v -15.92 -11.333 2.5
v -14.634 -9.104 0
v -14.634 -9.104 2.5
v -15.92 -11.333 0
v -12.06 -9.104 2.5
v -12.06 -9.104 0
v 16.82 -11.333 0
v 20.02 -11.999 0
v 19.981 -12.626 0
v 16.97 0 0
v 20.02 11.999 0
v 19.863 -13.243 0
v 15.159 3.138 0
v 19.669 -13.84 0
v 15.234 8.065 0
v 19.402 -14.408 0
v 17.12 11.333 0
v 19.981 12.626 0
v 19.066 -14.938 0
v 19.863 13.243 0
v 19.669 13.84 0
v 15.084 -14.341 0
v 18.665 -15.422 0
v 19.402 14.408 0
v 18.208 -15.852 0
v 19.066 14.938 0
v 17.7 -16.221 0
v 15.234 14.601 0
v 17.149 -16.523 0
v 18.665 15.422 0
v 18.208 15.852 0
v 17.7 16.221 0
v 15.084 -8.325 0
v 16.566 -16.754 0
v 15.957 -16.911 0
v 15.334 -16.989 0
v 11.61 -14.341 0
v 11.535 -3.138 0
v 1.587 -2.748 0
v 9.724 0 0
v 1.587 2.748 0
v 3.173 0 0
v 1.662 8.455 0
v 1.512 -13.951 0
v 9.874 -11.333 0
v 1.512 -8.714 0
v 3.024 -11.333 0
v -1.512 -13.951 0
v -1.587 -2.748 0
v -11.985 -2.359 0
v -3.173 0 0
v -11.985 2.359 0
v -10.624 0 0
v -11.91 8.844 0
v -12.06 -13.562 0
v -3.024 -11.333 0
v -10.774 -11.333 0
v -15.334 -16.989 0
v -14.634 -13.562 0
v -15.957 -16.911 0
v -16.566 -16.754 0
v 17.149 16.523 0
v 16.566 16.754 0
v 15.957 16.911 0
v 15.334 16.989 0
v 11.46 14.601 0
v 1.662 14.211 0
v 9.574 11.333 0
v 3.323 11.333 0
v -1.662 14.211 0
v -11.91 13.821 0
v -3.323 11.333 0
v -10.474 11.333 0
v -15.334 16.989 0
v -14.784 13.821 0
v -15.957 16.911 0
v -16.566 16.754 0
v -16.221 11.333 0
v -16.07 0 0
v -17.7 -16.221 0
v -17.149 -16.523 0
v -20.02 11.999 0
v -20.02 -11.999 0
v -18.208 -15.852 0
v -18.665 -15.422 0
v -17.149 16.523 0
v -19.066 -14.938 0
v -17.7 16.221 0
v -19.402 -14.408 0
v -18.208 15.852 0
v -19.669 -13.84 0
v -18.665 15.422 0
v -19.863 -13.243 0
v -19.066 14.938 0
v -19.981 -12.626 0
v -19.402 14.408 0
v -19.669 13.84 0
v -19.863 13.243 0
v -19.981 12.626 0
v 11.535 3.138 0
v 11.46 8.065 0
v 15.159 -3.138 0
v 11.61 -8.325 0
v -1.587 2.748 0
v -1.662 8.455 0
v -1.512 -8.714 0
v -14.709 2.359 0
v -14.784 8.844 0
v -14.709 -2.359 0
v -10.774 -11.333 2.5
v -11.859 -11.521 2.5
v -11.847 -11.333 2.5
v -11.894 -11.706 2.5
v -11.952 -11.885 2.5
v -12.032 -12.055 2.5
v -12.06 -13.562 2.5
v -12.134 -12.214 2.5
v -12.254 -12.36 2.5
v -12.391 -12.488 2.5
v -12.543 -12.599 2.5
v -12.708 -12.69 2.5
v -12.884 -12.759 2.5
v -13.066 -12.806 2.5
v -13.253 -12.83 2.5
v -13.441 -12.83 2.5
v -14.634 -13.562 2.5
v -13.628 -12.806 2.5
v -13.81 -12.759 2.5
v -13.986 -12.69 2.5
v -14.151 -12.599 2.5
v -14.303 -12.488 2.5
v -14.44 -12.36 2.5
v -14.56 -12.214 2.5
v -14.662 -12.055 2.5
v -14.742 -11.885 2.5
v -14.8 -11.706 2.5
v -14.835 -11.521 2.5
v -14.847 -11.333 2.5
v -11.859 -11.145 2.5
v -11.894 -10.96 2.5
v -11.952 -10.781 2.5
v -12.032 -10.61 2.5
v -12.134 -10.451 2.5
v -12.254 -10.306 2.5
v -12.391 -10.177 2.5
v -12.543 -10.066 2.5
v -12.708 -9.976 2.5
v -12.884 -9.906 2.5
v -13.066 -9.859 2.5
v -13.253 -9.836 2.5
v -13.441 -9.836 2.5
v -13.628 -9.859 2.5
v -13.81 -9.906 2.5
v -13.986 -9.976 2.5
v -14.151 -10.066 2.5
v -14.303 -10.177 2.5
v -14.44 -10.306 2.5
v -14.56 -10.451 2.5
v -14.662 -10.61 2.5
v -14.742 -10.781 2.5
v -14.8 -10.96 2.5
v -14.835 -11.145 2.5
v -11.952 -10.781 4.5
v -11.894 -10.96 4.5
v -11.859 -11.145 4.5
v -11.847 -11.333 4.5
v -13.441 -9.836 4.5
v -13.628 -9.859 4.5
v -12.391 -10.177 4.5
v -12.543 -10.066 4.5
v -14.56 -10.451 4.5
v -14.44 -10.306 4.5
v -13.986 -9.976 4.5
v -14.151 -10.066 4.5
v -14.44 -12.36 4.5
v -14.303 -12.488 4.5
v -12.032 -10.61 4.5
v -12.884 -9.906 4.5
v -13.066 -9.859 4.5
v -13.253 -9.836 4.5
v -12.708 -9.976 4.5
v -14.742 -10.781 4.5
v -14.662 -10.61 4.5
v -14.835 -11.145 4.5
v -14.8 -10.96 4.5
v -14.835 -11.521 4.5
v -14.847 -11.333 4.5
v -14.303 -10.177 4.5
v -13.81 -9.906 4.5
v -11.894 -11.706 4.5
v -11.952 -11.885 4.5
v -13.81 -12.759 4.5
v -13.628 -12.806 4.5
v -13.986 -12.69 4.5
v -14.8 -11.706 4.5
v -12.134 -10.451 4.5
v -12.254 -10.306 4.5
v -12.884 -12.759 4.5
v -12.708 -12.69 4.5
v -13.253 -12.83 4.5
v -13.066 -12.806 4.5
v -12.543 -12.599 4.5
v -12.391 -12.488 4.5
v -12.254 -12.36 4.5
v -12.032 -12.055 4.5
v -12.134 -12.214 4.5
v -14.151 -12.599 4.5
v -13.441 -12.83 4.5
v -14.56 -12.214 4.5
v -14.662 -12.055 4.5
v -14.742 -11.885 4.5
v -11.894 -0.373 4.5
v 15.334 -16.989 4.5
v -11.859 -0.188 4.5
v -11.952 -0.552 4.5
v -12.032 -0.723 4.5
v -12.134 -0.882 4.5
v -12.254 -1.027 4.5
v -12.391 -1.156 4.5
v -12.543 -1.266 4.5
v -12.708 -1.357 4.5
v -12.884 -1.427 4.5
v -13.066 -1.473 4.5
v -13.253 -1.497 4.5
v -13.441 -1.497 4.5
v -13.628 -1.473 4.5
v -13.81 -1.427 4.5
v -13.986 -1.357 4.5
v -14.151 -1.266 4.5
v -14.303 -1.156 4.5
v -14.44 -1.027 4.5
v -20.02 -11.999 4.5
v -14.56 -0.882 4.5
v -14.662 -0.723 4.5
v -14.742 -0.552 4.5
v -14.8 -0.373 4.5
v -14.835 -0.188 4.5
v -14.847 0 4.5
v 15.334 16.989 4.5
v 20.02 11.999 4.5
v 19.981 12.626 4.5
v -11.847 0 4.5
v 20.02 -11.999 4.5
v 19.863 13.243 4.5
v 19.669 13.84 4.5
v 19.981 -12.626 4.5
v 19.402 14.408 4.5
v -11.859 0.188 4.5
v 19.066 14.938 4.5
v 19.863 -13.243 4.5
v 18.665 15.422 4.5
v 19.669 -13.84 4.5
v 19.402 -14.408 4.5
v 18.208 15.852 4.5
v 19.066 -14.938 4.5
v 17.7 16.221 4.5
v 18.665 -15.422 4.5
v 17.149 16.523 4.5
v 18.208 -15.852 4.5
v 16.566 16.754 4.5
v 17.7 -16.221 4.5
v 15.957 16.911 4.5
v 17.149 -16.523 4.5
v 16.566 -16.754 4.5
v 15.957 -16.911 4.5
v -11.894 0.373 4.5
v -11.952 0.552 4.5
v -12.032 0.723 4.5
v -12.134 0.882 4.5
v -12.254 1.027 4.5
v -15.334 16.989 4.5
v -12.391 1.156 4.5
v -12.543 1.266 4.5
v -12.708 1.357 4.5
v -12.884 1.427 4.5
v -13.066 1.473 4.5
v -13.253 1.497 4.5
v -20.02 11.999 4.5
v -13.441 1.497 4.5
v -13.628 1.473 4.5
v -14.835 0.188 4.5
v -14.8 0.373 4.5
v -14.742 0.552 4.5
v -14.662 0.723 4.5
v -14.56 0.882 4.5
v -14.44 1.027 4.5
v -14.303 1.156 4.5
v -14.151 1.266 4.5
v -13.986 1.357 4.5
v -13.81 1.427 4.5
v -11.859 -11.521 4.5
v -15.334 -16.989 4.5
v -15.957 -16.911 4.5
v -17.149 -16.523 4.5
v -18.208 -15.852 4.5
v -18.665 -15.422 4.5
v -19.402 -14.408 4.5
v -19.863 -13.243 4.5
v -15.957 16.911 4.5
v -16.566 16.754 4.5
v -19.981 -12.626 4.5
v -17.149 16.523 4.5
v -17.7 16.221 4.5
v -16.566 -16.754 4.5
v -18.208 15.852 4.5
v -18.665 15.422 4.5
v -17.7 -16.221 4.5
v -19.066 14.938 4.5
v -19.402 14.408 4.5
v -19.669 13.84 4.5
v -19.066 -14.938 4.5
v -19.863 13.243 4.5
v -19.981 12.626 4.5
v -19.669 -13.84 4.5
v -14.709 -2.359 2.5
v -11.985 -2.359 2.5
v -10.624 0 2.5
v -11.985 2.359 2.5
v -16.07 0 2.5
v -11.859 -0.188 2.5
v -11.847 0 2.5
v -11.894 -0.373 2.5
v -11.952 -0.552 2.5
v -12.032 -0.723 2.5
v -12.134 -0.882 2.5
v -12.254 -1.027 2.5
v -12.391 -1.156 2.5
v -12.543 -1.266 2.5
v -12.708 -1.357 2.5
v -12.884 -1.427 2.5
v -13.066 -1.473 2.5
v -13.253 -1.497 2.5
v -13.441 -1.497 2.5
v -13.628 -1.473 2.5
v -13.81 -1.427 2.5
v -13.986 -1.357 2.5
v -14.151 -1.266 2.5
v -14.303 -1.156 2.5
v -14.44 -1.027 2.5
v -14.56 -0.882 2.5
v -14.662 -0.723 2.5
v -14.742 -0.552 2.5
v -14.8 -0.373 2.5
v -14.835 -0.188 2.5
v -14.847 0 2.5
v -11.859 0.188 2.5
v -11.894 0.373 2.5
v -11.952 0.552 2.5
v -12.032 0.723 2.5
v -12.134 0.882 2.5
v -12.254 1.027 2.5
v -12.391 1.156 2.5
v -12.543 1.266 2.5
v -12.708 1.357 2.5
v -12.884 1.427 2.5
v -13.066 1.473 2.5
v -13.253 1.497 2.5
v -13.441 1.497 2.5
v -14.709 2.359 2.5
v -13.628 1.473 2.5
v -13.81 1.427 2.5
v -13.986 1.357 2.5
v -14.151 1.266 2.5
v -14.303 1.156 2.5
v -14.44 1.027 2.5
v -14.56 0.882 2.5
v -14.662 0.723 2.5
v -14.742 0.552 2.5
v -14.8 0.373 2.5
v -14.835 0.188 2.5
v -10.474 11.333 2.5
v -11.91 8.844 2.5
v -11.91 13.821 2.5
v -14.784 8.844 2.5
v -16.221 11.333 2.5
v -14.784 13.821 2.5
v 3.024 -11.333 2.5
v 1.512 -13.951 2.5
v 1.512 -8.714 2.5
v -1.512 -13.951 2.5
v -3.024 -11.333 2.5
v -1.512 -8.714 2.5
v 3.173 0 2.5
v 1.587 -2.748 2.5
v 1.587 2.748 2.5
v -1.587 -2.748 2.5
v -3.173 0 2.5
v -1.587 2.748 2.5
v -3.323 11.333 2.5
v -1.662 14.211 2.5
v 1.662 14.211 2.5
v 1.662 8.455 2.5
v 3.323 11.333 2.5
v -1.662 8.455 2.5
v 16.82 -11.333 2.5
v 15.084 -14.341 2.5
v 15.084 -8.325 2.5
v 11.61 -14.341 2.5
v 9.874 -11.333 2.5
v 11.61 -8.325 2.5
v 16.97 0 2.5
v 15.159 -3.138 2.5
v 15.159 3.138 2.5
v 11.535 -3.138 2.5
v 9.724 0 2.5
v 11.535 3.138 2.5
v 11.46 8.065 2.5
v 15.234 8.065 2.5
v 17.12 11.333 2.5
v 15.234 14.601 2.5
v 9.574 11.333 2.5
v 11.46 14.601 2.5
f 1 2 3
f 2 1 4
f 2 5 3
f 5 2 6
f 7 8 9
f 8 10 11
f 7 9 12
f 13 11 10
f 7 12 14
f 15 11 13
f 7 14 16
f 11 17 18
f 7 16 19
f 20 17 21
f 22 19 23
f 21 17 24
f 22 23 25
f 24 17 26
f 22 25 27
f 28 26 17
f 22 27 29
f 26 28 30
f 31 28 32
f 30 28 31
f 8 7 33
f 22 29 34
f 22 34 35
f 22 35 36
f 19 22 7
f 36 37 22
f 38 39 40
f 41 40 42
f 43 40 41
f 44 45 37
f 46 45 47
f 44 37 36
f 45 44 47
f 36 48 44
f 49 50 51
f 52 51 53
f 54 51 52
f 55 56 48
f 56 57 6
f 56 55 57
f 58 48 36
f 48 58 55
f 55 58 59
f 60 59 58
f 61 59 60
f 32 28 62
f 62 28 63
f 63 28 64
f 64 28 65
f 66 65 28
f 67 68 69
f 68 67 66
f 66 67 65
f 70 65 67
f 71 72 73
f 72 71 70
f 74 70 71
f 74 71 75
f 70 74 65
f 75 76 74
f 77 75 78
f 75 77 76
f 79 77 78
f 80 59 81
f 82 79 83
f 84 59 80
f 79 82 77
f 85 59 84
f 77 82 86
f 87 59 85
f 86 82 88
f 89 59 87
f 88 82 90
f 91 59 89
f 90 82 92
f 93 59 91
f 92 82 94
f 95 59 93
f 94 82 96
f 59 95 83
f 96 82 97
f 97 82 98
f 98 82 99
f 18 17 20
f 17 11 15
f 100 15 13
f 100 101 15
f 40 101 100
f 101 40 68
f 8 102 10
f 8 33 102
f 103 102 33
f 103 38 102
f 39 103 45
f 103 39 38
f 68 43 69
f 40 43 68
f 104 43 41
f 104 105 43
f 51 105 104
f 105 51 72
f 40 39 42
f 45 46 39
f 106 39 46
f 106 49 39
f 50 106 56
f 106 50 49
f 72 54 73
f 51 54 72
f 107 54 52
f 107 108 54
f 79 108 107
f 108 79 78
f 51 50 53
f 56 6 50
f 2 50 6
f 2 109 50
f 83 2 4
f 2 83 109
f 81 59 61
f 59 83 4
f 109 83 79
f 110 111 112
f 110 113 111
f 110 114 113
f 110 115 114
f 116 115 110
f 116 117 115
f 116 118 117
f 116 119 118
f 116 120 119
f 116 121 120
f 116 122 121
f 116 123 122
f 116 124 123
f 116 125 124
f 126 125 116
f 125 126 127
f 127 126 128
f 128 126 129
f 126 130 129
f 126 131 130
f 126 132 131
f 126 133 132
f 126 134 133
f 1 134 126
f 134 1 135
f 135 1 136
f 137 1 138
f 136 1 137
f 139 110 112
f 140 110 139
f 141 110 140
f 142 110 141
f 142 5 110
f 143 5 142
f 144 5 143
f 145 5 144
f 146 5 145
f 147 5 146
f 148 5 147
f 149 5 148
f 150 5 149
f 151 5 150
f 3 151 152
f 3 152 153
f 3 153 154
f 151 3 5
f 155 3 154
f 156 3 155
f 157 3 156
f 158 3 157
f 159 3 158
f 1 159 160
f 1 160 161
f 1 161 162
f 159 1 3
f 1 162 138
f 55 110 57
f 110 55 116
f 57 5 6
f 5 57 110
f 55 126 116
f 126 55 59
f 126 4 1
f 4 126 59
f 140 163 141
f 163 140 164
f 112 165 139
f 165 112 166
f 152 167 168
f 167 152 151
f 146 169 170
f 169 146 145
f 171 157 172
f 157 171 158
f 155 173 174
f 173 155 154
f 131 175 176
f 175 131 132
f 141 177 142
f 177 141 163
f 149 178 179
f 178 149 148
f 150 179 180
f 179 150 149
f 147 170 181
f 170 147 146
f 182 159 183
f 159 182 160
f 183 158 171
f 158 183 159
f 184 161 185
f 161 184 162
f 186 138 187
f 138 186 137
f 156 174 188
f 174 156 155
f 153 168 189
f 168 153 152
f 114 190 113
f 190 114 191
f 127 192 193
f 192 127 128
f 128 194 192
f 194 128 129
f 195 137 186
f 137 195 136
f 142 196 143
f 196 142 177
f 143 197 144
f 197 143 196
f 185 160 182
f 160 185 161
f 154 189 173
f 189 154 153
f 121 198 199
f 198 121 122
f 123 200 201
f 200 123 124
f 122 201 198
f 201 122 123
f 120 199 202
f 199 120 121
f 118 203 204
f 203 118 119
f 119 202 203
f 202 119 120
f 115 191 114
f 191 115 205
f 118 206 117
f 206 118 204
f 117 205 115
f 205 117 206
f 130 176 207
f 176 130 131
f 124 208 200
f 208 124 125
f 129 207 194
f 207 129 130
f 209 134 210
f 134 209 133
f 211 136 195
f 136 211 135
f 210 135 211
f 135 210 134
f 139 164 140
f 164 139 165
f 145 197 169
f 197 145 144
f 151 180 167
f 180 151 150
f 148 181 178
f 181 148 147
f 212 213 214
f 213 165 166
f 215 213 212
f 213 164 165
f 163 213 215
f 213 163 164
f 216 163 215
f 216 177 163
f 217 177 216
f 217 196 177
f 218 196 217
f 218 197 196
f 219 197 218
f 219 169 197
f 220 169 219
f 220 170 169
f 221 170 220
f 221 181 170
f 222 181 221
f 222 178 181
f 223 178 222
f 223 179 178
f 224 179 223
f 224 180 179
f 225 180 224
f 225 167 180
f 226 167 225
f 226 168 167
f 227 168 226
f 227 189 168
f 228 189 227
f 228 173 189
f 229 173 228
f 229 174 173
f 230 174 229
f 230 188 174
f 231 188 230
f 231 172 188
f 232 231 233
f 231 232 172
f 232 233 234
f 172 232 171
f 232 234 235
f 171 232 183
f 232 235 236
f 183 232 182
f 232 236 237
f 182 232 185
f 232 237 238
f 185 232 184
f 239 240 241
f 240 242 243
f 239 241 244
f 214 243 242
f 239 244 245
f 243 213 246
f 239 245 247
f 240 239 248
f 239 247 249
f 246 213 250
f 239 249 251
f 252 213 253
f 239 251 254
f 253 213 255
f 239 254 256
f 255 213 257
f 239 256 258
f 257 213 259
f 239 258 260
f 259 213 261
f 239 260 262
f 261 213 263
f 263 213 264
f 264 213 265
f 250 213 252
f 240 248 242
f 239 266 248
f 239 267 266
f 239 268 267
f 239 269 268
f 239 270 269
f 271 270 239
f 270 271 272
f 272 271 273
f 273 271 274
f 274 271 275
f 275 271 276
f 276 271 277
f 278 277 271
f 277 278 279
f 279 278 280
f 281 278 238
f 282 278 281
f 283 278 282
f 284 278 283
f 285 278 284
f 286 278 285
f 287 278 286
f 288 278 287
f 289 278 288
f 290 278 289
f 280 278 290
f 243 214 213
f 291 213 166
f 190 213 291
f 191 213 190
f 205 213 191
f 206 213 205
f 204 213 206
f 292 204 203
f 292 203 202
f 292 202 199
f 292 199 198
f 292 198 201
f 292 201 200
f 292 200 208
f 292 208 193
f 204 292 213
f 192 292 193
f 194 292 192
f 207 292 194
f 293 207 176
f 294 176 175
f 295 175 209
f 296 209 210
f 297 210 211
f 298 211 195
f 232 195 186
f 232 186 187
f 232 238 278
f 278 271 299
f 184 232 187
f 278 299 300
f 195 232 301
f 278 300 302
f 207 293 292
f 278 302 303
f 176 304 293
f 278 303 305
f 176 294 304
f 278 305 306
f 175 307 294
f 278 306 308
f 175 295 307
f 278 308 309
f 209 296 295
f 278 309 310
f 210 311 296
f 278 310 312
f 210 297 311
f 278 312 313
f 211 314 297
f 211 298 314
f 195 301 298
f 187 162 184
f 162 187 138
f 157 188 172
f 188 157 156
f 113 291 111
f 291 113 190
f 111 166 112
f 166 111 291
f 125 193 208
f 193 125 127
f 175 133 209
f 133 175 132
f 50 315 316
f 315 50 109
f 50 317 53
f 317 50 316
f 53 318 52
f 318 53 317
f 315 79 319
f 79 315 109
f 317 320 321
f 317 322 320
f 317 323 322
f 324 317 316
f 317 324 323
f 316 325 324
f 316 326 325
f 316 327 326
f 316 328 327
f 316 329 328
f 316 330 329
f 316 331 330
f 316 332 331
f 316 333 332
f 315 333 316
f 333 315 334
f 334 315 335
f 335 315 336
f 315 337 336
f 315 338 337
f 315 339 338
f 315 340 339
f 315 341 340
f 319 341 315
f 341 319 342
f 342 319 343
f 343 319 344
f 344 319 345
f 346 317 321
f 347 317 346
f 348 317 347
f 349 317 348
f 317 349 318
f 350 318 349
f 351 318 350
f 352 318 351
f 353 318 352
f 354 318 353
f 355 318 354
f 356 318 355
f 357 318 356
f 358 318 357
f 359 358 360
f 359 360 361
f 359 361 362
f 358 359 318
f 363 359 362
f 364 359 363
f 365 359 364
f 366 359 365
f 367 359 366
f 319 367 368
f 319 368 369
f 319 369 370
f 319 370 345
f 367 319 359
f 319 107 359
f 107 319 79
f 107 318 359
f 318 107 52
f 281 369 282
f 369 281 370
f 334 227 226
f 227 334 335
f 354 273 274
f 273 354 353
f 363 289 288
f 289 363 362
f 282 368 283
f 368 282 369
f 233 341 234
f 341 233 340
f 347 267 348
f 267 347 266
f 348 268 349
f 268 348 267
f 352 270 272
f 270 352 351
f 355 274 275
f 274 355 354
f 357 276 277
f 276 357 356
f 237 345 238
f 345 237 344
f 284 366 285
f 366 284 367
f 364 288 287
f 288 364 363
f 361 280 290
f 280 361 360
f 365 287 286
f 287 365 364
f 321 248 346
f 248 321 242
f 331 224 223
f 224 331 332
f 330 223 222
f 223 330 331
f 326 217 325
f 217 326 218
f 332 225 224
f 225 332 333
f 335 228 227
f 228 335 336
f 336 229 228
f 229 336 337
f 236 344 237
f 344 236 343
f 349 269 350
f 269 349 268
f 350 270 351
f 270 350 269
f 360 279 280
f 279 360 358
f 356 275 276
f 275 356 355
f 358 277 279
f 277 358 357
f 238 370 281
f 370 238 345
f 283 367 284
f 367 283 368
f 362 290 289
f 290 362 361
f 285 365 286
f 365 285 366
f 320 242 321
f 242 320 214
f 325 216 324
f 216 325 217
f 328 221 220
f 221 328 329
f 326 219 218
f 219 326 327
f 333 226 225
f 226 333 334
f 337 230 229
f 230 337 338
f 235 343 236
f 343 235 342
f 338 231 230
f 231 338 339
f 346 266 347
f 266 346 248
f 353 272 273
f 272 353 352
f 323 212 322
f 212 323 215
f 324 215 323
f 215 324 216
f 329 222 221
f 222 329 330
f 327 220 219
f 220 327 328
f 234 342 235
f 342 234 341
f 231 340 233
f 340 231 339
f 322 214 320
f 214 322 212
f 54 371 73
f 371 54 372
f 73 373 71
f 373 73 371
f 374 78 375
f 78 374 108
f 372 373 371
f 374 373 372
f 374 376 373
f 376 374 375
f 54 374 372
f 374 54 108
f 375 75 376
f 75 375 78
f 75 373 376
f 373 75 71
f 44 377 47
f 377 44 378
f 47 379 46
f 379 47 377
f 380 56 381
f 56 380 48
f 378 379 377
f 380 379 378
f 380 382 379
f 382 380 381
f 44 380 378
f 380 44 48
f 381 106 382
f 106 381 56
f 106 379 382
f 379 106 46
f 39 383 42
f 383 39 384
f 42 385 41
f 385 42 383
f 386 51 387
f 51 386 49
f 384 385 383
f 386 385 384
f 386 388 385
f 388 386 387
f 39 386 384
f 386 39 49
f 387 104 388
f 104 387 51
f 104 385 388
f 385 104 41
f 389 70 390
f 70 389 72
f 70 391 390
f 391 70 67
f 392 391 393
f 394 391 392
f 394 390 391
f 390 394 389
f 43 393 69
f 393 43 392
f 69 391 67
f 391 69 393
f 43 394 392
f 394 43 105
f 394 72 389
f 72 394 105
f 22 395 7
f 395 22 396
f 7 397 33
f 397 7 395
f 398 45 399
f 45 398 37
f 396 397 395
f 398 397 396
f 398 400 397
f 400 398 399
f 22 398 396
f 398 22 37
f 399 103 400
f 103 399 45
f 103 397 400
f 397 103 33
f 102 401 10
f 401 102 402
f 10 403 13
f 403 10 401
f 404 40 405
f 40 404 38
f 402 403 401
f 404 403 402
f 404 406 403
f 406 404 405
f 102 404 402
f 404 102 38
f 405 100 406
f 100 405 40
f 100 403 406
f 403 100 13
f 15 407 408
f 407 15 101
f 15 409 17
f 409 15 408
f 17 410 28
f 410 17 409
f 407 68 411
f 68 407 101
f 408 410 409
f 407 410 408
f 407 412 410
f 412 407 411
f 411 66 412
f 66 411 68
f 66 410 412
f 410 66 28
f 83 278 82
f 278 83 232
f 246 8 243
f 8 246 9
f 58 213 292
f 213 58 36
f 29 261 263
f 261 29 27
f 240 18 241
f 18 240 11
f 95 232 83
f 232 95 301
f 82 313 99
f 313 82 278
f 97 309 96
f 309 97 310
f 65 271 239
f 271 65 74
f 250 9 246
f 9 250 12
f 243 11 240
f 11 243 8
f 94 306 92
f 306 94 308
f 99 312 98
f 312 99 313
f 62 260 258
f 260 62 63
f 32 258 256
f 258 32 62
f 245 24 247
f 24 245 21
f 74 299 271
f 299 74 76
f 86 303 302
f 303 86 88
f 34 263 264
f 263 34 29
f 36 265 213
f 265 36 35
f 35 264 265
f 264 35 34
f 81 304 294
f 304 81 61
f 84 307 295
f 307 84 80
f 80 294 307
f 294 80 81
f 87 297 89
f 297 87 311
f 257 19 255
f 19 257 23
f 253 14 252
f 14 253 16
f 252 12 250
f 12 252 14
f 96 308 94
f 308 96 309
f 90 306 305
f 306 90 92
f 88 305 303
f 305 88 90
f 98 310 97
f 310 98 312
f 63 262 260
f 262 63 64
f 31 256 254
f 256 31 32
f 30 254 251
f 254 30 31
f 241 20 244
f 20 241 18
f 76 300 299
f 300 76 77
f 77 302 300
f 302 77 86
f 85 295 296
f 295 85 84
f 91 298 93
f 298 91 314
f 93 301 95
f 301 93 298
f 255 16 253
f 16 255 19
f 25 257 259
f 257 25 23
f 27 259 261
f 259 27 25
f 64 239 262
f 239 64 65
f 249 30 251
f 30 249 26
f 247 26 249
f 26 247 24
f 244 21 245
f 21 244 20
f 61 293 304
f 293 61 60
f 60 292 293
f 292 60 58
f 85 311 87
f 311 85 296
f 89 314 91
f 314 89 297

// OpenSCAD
$fn = 50;


difference() {
	union() {
		translate(v = [0, 0, 0]) {
			rotate(a = [0, 0, 0]) {
				hull() {
					translate(v = [-15.0205000000, 11.9991334489, 0]) {
						rotate(a = [0, 0, 0]) {
							translate(v = [0, 0, 0]) {
								rotate(a = [0, 0, 0]) {
									cylinder(h = 4.5000000000, r = 5);
								}
							}
						}
					}
					translate(v = [15.0205000000, 11.9991334489, 0]) {
						rotate(a = [0, 0, 0]) {
							translate(v = [0, 0, 0]) {
								rotate(a = [0, 0, 0]) {
									cylinder(h = 4.5000000000, r = 5);
								}
							}
						}
					}
					translate(v = [-15.0205000000, -11.9991334489, 0]) {
						rotate(a = [0, 0, 0]) {
							translate(v = [0, 0, 0]) {
								rotate(a = [0, 0, 0]) {
									cylinder(h = 4.5000000000, r = 5);
								}
							}
						}
					}
					translate(v = [15.0205000000, -11.9991334489, 0]) {
						rotate(a = [0, 0, 0]) {
							translate(v = [0, 0, 0]) {
								rotate(a = [0, 0, 0]) {
									cylinder(h = 4.5000000000, r = 5);
								}
							}
						}
					}
				}
			}
		}
	}
	union() {
		translate(v = [-13.3470000000, -11.3327556326, 0]) {
			rotate(a = [0, 0, 0]) {
				#translate(v = [0, 0, 0]) {
					rotate(a = [0, 0, 0]) {
						linear_extrude(height = 2.5000000000) {
							polygon(points = [[2.5735000000, 0.0000000000], [1.2867500000, 2.2287163766], [-1.2867500000, 2.2287163766], [-2.5735000000, 0.0000000000], [-1.2867500000, -2.2287163766], [1.2867500000, -2.2287163766]]);
						}
					}
				}
			}
		}
		translate(v = [-13.3470000000, -11.3327556326, 0]) {
			rotate(a = [0, 0, 0]) {
				cylinder(h = 4.5000000000, r = 1.5000000000);
			}
		}
		translate(v = [-13.3470000000, -0.0000000000, 0]) {
			rotate(a = [0, 0, 0]) {
				#translate(v = [0, 0, 0]) {
					rotate(a = [0, 0, 0]) {
						linear_extrude(height = 2.5000000000) {
							polygon(points = [[2.7235000000, 0.0000000000], [1.3617500000, 2.3586201872], [-1.3617500000, 2.3586201872], [-2.7235000000, 0.0000000000], [-1.3617500000, -2.3586201872], [1.3617500000, -2.3586201872]]);
						}
					}
				}
			}
		}
		translate(v = [-13.3470000000, -0.0000000000, 0]) {
			rotate(a = [0, 0, 0]) {
				cylinder(h = 4.5000000000, r = 1.5000000000);
			}
		}
		translate(v = [-13.3470000000, 11.3327556326, 0]) {
			rotate(a = [0, 0, 0]) {
				#translate(v = [0, 0, 0]) {
					rotate(a = [0, 0, 0]) {
						linear_extrude(height = 2.5000000000) {
							polygon(points = [[2.8735000000, 0.0000000000], [1.4367500000, 2.4885239978], [-1.4367500000, 2.4885239978], [-2.8735000000, 0.0000000000], [-1.4367500000, -2.4885239978], [1.4367500000, -2.4885239978]]);
						}
					}
				}
			}
		}
		translate(v = [0.0000000000, -11.3327556326, 0]) {
			rotate(a = [0, 0, 0]) {
				#translate(v = [0, 0, 0]) {
					rotate(a = [0, 0, 0]) {
						linear_extrude(height = 2.5000000000) {
							polygon(points = [[3.0235000000, 0.0000000000], [1.5117500000, 2.6184278083], [-1.5117500000, 2.6184278083], [-3.0235000000, 0.0000000000], [-1.5117500000, -2.6184278083], [1.5117500000, -2.6184278083]]);
						}
					}
				}
			}
		}
		translate(v = [0.0000000000, -0.0000000000, 0]) {
			rotate(a = [0, 0, 0]) {
				#translate(v = [0, 0, 0]) {
					rotate(a = [0, 0, 0]) {
						linear_extrude(height = 2.5000000000) {
							polygon(points = [[3.1735000000, 0.0000000000], [1.5867500000, 2.7483316189], [-1.5867500000, 2.7483316189], [-3.1735000000, 0.0000000000], [-1.5867500000, -2.7483316189], [1.5867500000, -2.7483316189]]);
						}
					}
				}
			}
		}
		translate(v = [0.0000000000, 11.3327556326, 0]) {
			rotate(a = [0, 0, 0]) {
				#translate(v = [0, 0, 0]) {
					rotate(a = [0, 0, 0]) {
						linear_extrude(height = 2.5000000000) {
							polygon(points = [[3.3235000000, 0.0000000000], [1.6617500000, 2.8782354295], [-1.6617500000, 2.8782354295], [-3.3235000000, 0.0000000000], [-1.6617500000, -2.8782354295], [1.6617500000, -2.8782354295]]);
						}
					}
				}
			}
		}
		translate(v = [13.3470000000, -11.3327556326, 0]) {
			rotate(a = [0, 0, 0]) {
				#translate(v = [0, 0, 0]) {
					rotate(a = [0, 0, 0]) {
						linear_extrude(height = 2.5000000000) {
							polygon(points = [[3.4735000000, 0.0000000000], [1.7367500000, 3.0081392400], [-1.7367500000, 3.0081392400], [-3.4735000000, 0.0000000000], [-1.7367500000, -3.0081392400], [1.7367500000, -3.0081392400]]);
						}
					}
				}
			}
		}
		translate(v = [13.3470000000, -0.0000000000, 0]) {
			rotate(a = [0, 0, 0]) {
				#translate(v = [0, 0, 0]) {
					rotate(a = [0, 0, 0]) {
						linear_extrude(height = 2.5000000000) {
							polygon(points = [[3.6235000000, 0.0000000000], [1.8117500000, 3.1380430506], [-1.8117500000, 3.1380430506], [-3.6235000000, 0.0000000000], [-1.8117500000, -3.1380430506], [1.8117500000, -3.1380430506]]);
						}
					}
				}
			}
		}
		translate(v = [13.3470000000, 11.3327556326, 0]) {
			rotate(a = [0, 0, 0]) {
				#translate(v = [0, 0, 0]) {
					rotate(a = [0, 0, 0]) {
						linear_extrude(height = 2.5000000000) {
							polygon(points = [[3.7735000000, 0.0000000000], [1.8867500000, 3.2679468612], [-1.8867500000, 3.2679468612], [-3.7735000000, 0.0000000000], [-1.8867500000, -3.2679468612], [1.8867500000, -3.2679468612]]);
						}
					}
				}
			}
		}
	}
}
